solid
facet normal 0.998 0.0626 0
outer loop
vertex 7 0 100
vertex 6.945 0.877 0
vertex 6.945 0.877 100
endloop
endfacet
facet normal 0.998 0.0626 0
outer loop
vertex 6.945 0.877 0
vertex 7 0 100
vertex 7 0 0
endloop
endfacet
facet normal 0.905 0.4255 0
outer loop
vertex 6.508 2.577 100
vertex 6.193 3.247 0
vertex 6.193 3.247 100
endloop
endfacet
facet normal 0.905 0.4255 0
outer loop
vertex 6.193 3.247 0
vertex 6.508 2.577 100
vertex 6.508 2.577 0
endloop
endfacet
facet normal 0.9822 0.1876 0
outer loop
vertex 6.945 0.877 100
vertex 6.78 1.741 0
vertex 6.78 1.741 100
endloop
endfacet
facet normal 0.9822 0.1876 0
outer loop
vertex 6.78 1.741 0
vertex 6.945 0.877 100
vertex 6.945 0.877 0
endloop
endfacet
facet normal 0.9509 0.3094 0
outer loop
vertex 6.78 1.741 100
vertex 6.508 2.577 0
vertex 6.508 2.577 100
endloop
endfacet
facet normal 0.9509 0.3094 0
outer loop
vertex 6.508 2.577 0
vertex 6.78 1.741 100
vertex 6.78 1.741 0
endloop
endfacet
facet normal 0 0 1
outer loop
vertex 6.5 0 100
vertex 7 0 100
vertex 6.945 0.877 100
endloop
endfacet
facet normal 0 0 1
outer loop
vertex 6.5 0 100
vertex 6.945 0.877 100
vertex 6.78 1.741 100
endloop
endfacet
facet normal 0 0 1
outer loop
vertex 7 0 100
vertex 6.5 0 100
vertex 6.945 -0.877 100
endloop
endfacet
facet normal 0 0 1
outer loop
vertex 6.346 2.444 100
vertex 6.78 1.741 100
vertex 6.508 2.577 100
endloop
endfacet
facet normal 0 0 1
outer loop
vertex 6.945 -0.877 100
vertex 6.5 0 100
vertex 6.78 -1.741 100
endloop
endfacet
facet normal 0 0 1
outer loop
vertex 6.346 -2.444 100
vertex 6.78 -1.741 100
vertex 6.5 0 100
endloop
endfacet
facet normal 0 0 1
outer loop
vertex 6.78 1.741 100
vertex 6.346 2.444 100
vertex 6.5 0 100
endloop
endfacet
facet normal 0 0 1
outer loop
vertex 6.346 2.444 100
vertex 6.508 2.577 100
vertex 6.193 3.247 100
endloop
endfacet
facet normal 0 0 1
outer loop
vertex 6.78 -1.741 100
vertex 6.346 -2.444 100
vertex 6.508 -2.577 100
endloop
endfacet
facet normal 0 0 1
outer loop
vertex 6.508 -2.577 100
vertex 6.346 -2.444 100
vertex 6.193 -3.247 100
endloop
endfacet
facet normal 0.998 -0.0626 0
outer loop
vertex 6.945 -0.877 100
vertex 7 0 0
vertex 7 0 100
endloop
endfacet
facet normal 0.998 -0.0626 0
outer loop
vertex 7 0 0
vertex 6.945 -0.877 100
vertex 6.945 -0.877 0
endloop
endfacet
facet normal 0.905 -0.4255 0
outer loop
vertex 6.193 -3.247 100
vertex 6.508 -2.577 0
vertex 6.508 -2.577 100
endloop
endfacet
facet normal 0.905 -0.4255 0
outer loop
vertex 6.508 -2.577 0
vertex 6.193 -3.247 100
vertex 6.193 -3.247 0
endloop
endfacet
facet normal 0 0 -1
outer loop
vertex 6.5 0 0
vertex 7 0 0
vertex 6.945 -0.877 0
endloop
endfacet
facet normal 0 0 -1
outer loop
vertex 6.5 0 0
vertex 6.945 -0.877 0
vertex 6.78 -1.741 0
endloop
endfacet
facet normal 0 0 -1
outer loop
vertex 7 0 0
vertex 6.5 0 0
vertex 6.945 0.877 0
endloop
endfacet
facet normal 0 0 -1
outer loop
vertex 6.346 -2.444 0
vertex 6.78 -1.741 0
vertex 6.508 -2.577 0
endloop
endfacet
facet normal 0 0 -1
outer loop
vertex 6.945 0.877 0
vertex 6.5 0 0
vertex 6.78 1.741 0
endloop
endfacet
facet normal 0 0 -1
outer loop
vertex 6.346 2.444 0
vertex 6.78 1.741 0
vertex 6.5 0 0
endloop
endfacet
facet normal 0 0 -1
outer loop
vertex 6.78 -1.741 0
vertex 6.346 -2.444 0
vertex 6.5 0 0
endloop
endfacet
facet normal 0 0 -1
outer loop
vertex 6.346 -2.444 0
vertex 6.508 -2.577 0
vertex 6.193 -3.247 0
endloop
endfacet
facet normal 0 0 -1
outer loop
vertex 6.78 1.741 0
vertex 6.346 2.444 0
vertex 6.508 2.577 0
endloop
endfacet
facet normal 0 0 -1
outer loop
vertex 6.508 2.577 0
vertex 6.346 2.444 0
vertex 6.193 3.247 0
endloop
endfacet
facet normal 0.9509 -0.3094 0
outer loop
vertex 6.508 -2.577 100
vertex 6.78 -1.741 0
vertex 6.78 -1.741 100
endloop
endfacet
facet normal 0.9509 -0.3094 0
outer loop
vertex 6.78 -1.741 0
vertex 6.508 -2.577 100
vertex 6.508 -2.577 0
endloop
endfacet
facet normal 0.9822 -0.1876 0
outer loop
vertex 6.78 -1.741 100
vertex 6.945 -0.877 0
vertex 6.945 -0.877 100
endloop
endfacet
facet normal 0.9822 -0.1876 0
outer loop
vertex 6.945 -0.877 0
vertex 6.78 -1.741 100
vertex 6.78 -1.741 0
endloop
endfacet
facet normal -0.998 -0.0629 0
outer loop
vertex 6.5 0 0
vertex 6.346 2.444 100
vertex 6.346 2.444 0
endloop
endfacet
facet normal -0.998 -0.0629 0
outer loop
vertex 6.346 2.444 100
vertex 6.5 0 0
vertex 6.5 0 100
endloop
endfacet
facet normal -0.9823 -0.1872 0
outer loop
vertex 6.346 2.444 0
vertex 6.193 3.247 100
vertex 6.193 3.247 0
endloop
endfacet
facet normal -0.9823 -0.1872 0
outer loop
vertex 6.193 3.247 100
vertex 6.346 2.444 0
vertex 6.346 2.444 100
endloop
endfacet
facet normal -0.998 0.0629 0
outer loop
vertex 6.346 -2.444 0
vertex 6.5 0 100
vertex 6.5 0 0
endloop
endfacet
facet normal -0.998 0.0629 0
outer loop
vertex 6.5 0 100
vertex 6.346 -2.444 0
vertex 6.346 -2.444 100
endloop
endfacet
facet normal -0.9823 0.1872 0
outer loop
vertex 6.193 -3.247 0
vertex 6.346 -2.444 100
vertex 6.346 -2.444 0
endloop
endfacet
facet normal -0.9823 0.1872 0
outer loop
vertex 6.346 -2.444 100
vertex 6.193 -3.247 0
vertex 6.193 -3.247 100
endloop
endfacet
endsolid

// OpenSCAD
$fn = 50;


difference() {
	union() {
		cylinder(h = 100, r = 7.0000000000);
		translate(v = [-16.0000000000, 0, 0]) {
			cylinder(h = 100, r = 7.0000000000);
		}
	}
	union() {
		cylinder(h = 100, r = 3.2500000000);
		cylinder(h = 100, r = 1.8000000000);
		cylinder(h = 100, r = 1.8000000000);
		cylinder(h = 100, r = 1.8000000000);
		translate(v = [-20.5000000000, 0, 0]) {
			hull() {
				translate(v = [-3.7500000000, 0.0000000000, 0]) {
					cylinder(h = 100, r = 10.5000000000);
				}
				translate(v = [3.7500000000, 0.0000000000, 0]) {
					cylinder(h = 100, r = 10.5000000000);
				}
				translate(v = [-3.7500000000, -0.0000000000, 0]) {
					cylinder(h = 100, r = 10.5000000000);
				}
				translate(v = [3.7500000000, -0.0000000000, 0]) {
					cylinder(h = 100, r = 10.5000000000);
				}
			}
		}
		translate(v = [-13.0000000000, 0, 0.0000000000]) {
			cylinder(h = 100, r = 19.5000000000);
		}
	}
}
